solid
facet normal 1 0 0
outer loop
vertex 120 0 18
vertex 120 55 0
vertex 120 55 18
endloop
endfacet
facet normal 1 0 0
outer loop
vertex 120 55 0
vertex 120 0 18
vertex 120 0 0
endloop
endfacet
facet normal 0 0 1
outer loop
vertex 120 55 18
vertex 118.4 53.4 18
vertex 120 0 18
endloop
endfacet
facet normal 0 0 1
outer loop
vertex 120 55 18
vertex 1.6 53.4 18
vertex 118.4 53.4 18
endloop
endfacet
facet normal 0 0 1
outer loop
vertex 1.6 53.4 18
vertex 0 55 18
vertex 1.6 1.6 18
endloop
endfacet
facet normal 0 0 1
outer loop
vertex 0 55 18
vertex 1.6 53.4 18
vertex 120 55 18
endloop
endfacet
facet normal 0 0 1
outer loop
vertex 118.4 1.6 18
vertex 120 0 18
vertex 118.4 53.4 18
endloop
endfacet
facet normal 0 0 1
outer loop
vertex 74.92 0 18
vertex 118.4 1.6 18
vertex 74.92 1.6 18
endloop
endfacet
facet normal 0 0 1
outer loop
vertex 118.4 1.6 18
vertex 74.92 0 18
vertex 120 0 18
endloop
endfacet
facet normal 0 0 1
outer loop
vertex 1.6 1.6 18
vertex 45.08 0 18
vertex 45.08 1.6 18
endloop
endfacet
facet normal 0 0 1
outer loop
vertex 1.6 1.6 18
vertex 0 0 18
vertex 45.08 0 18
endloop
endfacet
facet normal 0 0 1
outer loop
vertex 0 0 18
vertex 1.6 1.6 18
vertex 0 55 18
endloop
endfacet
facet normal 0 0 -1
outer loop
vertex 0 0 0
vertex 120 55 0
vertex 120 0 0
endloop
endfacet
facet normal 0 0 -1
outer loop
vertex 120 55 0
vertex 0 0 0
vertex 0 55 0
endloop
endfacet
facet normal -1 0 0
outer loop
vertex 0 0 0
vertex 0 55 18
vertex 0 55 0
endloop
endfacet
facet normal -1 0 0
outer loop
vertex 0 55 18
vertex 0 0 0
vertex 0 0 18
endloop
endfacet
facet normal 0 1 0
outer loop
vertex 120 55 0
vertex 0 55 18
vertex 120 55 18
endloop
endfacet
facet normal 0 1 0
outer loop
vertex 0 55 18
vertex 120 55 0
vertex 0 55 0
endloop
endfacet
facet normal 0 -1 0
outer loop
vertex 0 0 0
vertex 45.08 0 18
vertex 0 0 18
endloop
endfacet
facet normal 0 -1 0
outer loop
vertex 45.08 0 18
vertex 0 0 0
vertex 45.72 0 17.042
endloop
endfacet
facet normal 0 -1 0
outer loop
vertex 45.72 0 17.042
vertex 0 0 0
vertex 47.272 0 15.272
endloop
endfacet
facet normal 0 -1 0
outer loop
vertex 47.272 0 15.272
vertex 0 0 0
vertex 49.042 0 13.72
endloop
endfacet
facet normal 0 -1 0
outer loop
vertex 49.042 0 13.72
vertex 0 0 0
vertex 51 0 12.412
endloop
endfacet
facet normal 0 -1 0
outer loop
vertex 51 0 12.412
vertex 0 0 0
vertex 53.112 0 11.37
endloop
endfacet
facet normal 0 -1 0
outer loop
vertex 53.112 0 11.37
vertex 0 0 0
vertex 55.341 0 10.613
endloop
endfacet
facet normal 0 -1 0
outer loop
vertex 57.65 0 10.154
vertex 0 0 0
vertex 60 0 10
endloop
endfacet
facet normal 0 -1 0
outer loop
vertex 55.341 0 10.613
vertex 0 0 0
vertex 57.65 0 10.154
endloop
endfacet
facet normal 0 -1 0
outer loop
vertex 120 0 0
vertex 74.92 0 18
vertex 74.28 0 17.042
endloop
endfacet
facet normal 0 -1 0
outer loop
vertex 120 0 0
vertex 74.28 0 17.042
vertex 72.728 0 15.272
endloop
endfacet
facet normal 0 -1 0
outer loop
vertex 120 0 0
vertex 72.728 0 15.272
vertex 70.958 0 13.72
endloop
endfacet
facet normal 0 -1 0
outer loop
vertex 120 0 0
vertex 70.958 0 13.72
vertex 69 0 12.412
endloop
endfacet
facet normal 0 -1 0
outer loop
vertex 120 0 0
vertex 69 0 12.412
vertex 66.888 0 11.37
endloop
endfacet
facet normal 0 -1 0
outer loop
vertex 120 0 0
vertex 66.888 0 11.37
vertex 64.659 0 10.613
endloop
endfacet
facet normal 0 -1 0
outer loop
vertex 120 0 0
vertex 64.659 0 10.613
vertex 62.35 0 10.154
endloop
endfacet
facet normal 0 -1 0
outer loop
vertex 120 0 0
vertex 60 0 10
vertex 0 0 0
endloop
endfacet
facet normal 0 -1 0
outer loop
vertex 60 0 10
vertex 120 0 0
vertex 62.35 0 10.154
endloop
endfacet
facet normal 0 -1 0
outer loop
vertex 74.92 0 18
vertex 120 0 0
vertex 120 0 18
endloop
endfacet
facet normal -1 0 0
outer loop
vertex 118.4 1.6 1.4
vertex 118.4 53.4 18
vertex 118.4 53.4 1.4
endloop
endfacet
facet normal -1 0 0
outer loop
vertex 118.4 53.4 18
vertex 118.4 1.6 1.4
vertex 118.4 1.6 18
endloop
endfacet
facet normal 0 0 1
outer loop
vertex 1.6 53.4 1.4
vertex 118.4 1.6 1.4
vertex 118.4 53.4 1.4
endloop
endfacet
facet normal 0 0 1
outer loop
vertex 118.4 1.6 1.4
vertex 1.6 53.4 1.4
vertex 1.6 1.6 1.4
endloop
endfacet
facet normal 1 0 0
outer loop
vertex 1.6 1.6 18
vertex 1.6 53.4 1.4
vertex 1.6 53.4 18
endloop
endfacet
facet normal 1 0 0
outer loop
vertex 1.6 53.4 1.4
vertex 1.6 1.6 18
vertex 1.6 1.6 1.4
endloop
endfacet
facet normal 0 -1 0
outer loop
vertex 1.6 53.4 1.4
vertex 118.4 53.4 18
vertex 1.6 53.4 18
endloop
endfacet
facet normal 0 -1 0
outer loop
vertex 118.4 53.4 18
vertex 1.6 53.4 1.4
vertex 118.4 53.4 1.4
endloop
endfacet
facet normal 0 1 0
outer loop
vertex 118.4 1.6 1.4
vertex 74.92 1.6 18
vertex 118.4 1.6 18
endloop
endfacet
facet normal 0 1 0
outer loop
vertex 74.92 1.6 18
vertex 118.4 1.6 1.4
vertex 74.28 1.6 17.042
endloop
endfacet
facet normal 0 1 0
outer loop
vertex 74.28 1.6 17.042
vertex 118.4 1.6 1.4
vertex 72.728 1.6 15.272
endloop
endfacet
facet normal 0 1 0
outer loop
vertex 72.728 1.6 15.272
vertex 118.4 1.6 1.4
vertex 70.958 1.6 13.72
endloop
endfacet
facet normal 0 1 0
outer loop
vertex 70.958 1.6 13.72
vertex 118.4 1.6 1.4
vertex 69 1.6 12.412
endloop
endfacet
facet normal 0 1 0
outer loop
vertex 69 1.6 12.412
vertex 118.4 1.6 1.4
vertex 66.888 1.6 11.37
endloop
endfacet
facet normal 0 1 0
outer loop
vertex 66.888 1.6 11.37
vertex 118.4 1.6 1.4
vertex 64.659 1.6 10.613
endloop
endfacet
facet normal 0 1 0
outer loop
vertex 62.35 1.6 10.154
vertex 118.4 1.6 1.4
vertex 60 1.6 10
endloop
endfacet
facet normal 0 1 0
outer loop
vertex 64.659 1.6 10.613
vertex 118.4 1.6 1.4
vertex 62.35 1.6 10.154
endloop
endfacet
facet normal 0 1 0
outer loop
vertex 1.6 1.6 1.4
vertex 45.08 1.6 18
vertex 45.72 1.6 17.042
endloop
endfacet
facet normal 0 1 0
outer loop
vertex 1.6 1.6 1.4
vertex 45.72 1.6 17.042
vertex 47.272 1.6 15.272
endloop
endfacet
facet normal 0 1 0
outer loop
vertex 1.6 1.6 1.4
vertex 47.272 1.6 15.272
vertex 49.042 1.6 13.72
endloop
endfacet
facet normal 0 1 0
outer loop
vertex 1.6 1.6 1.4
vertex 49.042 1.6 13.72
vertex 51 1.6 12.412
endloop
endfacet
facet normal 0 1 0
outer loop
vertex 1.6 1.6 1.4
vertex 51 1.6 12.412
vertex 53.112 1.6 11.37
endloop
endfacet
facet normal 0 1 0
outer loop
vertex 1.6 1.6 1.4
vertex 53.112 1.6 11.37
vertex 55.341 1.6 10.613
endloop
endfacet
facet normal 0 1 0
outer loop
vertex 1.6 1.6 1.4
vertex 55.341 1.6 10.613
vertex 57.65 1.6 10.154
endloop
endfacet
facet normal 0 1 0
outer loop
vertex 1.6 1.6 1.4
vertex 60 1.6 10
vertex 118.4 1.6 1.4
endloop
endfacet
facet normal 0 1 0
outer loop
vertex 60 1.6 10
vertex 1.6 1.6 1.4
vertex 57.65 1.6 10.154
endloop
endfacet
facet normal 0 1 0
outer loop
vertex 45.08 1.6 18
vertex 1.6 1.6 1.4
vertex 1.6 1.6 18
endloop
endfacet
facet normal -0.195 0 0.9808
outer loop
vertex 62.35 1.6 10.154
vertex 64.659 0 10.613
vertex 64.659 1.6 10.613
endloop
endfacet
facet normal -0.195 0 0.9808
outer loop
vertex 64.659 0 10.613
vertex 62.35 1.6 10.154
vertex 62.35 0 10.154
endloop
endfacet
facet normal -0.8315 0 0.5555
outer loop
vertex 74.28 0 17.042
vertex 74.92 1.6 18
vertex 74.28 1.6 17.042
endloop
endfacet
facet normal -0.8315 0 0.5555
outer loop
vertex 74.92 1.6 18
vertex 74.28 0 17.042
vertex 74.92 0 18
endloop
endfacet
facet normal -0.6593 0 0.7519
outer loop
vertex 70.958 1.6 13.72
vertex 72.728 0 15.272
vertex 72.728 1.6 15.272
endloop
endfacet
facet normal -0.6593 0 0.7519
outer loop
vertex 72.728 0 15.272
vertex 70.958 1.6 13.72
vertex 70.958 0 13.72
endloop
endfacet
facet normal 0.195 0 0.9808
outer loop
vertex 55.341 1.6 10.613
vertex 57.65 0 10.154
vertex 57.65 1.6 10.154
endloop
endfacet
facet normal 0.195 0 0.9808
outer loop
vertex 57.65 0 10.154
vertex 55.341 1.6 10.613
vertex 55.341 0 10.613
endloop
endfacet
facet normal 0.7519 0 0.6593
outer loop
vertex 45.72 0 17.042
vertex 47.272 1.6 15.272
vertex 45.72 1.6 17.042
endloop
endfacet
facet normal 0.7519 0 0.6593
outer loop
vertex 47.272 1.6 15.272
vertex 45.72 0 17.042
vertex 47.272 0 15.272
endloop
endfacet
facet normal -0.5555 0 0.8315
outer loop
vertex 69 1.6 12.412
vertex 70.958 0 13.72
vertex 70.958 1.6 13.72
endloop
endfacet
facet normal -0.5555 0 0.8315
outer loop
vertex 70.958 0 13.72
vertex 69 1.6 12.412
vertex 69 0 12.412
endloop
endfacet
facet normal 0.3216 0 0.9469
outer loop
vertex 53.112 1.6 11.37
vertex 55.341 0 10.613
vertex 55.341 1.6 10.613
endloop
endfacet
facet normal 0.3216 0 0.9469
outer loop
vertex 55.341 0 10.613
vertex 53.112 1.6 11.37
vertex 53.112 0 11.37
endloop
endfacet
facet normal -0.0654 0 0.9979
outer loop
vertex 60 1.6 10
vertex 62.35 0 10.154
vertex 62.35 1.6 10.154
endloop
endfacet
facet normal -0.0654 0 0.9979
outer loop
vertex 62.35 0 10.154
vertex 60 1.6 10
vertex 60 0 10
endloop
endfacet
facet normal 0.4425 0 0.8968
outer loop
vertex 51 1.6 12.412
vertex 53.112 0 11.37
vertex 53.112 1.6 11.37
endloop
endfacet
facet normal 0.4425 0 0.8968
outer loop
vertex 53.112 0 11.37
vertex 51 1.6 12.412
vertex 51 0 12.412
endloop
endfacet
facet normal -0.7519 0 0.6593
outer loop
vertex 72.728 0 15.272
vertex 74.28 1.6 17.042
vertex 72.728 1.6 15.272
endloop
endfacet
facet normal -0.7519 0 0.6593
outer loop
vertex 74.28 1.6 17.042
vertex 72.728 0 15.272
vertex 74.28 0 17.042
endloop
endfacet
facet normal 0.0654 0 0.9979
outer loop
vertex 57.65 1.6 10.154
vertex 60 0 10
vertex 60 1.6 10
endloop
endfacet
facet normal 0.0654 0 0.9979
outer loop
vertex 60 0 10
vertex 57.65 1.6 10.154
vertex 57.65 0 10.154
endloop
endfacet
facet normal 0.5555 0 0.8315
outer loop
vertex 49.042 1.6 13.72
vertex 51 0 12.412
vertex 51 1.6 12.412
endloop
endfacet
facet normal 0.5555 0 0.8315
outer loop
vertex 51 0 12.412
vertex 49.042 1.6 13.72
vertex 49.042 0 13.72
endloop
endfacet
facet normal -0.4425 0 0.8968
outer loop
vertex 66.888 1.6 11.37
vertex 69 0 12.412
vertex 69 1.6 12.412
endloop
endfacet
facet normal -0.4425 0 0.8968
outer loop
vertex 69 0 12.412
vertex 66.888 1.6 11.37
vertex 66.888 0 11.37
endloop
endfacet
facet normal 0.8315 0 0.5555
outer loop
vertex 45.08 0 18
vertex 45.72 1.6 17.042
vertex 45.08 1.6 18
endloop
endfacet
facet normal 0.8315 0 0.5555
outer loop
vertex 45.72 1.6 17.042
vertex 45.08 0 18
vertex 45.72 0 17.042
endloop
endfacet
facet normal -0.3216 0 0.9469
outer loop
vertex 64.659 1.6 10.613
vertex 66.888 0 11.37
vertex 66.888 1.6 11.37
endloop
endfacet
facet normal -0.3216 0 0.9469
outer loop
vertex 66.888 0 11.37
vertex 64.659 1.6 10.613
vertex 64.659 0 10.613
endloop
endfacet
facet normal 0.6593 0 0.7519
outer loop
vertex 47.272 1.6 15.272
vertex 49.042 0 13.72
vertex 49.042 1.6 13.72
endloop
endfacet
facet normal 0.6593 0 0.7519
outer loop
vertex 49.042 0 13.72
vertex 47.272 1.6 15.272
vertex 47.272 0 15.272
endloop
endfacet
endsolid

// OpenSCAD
// Electronics Storage — 3x1 Dev Board Tray
// 120 x 55 x 18 mm shallow tray for dev boards:
// Arduino Uno/Mega, ESP32 dev boards, Raspberry Pi Pico, breakouts.
// Low walls so pins don't catch; one long edge has a finger-access
// scoop so you can flick a board out.

$fn = 48;

W          = 120;
D          = 55;
H          = 18;
WALL       = 1.6;
FLOOR      = 1.4;
SCOOP_R    = 18;   // radius of the finger-scoop on the front edge
SCOOP_DROP = 8;    // how far below the rim the scoop dips

difference() {
    cube([W, D, H]);
    // Inner cavity
    translate([WALL, WALL, FLOOR])
        cube([W - 2*WALL, D - 2*WALL, H]);
    // Finger scoop on the front edge (Y=0 side)
    translate([W/2, -0.01, H - SCOOP_DROP + SCOOP_R])
        rotate([-90, 0, 0])
            cylinder(h = WALL + 0.02, r = SCOOP_R);
}
